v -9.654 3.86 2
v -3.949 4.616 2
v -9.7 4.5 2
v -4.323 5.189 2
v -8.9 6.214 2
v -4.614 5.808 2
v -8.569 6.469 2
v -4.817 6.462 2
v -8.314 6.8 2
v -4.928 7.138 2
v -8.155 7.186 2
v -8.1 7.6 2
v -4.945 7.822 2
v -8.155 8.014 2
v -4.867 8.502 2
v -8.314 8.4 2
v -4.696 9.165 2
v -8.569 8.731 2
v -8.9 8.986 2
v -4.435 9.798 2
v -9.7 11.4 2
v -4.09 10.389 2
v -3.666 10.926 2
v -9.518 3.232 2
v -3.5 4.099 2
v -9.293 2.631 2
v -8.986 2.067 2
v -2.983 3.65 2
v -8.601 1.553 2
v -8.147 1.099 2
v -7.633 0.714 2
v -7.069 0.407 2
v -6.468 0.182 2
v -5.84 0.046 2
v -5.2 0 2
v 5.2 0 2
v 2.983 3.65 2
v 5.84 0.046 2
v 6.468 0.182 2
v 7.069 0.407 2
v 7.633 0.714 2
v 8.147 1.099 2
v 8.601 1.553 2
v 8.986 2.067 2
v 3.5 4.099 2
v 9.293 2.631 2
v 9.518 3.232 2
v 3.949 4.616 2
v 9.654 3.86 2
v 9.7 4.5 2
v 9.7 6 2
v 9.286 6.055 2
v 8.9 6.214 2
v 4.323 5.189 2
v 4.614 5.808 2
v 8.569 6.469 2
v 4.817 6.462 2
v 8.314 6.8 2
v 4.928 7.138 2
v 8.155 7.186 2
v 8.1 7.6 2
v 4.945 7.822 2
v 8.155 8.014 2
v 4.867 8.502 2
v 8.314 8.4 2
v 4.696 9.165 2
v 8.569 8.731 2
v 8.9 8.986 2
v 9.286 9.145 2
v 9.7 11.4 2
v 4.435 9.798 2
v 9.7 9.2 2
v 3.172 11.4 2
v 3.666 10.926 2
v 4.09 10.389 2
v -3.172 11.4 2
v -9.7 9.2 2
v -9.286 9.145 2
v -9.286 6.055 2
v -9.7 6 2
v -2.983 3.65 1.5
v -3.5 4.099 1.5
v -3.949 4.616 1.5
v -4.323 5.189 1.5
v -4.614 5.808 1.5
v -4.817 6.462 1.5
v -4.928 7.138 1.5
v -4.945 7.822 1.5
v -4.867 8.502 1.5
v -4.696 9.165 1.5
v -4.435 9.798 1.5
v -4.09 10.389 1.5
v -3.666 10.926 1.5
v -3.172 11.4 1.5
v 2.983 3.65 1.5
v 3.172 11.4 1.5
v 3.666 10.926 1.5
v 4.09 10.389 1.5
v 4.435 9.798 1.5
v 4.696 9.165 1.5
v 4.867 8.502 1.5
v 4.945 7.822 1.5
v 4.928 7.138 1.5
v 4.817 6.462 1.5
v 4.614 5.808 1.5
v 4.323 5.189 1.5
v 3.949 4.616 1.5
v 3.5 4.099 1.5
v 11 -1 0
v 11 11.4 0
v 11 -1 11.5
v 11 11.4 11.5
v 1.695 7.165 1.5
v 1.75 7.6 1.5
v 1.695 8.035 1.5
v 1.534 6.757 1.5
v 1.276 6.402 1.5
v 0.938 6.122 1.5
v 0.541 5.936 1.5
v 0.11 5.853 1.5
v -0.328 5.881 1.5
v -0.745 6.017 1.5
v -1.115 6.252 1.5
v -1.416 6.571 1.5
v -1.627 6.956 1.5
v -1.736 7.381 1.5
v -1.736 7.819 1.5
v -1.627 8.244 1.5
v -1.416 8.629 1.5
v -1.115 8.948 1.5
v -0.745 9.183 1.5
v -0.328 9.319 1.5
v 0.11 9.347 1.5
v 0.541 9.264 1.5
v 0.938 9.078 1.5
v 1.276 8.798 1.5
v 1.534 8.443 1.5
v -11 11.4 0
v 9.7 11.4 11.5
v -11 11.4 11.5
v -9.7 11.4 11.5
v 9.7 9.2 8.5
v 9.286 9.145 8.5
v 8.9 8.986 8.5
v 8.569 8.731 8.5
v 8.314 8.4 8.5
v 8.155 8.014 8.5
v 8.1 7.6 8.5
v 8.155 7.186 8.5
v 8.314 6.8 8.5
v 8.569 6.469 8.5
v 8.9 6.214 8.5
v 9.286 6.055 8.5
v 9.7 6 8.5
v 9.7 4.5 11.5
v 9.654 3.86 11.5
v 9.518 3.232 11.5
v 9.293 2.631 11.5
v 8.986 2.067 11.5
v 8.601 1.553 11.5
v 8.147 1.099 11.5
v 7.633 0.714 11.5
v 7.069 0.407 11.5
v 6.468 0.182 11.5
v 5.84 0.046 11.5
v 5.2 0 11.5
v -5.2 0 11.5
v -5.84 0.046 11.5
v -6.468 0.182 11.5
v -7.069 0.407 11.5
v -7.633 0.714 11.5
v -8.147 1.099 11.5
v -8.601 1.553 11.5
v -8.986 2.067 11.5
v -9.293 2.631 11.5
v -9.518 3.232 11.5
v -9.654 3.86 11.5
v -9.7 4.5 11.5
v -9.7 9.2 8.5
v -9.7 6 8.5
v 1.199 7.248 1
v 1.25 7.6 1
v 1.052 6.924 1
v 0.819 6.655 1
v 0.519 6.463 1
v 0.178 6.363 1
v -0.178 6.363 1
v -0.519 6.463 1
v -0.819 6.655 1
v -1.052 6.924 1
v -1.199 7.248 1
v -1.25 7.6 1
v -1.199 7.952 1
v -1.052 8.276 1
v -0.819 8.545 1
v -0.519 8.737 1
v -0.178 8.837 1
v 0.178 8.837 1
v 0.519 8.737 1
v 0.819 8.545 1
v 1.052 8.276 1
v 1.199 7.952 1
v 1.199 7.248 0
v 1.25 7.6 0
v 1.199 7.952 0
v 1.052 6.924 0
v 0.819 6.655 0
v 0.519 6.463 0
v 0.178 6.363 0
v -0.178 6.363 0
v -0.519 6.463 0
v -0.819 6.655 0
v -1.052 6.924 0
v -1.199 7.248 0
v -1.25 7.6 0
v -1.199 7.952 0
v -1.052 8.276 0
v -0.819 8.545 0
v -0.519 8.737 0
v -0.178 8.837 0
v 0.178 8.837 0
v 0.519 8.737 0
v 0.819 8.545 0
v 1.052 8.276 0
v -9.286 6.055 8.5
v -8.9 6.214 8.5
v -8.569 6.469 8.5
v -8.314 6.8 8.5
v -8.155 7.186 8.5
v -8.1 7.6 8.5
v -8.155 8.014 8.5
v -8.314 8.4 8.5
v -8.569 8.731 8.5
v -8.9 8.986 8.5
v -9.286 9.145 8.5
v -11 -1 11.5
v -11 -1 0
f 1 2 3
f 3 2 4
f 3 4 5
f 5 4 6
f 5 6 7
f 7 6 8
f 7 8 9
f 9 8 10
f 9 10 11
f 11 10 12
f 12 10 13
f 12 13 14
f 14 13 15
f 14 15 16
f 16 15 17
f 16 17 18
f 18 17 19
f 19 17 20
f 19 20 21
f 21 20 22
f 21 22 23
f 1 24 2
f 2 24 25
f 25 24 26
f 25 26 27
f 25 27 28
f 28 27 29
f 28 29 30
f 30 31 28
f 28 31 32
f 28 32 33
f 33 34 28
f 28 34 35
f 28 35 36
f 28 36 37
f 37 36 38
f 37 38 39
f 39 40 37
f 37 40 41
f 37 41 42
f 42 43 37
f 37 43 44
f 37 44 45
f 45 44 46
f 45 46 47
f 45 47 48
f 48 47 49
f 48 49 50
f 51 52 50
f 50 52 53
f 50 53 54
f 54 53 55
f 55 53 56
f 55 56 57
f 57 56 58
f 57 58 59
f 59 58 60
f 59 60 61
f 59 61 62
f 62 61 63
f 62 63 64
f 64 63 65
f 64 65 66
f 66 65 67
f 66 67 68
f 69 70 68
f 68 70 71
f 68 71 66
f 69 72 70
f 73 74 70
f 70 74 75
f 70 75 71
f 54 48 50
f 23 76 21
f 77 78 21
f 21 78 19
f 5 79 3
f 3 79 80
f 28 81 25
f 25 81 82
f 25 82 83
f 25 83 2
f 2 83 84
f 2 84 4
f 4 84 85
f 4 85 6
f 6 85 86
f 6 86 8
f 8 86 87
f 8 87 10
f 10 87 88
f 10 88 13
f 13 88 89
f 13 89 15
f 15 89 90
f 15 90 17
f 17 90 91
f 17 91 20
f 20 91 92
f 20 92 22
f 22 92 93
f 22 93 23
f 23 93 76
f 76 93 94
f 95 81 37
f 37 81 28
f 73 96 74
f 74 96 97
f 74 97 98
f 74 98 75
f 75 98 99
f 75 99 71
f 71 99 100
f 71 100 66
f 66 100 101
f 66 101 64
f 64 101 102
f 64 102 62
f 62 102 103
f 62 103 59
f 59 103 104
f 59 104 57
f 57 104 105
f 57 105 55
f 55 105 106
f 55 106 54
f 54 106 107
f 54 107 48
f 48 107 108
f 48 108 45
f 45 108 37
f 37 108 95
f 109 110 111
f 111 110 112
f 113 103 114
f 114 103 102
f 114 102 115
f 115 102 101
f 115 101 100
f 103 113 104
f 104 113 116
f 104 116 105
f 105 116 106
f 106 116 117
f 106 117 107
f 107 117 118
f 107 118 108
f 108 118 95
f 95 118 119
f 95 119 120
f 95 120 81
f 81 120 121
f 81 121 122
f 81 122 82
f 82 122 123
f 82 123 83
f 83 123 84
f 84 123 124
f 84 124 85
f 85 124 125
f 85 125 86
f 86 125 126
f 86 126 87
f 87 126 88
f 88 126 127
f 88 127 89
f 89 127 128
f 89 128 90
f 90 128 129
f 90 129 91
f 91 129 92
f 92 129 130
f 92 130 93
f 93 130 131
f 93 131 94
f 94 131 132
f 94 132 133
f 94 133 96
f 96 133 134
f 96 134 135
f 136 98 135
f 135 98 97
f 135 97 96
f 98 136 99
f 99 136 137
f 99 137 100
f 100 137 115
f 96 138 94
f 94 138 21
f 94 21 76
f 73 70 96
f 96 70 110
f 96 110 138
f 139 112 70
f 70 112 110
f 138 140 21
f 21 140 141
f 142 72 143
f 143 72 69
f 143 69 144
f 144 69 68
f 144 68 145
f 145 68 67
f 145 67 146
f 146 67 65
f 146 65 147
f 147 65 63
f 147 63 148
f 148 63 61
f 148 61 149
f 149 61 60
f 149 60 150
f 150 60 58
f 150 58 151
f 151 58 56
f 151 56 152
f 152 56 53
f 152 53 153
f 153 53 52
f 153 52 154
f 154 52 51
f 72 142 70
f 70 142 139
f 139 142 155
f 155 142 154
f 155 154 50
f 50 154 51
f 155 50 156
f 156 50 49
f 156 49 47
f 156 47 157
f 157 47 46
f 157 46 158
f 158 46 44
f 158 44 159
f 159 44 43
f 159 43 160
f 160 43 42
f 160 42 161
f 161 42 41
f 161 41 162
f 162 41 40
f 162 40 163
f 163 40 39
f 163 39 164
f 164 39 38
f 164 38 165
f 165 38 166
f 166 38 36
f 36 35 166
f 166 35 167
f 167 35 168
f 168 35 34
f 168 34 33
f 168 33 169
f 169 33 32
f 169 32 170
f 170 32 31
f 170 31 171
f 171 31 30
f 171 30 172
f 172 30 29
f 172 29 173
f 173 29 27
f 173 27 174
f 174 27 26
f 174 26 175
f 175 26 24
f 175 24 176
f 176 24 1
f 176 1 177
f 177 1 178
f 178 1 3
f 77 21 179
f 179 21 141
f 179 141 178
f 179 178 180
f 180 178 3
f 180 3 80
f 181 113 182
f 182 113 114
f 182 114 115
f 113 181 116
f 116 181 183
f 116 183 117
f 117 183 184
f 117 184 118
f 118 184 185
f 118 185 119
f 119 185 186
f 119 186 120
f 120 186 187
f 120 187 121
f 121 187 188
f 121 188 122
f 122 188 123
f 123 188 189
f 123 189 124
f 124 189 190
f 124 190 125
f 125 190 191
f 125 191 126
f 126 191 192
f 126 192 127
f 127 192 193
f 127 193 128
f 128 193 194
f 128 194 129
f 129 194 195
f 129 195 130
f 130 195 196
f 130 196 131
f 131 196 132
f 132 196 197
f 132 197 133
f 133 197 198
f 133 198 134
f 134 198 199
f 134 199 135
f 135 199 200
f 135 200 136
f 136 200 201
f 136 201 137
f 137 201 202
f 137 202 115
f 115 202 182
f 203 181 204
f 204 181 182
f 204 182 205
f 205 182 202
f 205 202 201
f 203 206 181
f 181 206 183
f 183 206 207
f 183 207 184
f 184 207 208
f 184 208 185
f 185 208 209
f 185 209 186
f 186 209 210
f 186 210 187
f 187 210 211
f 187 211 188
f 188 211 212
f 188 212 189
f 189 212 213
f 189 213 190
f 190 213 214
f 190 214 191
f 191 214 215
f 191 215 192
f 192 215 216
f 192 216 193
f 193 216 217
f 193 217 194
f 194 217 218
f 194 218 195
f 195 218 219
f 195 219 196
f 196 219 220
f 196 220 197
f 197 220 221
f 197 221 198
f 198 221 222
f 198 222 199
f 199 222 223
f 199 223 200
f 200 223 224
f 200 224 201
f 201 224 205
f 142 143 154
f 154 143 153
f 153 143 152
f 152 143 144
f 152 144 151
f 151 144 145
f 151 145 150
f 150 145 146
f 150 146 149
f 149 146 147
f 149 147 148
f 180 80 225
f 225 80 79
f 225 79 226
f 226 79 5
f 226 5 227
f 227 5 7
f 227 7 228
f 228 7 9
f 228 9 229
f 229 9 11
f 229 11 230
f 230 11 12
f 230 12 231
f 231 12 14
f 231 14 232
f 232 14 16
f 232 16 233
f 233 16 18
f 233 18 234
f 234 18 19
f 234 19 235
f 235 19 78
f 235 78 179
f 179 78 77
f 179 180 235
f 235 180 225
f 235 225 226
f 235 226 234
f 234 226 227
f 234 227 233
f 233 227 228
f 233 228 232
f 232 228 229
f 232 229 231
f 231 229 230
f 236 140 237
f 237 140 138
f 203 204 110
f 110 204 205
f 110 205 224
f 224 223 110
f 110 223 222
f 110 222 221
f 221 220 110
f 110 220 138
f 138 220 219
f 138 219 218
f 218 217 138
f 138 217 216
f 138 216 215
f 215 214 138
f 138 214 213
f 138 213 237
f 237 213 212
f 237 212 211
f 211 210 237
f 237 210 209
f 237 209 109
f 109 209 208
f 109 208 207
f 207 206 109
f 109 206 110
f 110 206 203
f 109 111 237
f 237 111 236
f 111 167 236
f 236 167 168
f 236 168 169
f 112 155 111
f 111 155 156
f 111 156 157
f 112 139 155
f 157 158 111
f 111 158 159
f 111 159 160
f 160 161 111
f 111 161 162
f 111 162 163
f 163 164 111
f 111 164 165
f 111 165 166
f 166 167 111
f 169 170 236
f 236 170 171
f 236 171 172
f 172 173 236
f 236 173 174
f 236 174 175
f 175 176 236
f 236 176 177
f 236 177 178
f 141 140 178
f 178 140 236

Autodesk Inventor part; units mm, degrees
ref_plane "YZ Plane" through (0, 0, 0) normal (1, 0, 0) x (0, 1, 0)
ref_plane "XZ Plane" through (0, 0, 0) normal (0, 1, 0) x (-1, 0, 0)
ref_plane "XY Plane" through (0, 0, 0) normal (0, 0, 1) x (1, 0, 0)
sketch "Sketch1" plane through (0, 0, 0) normal (0, 0, 1) x (1, 0, 0)
  line L0 (9.7, 0) -> (-9.7, 0)
  line L1 (-9.7, 0) -> (-9.7, 11.4)
  line L2 (-9.7, 11.4) -> (9.7, 11.4)
  line L3 (9.7, 11.4) -> (9.7, 0)
  line L4 (-9.7, 6) -> (-9.7, 0)
  line L5 (-9.7, 0) -> (9.7, 0)
  line L6 (9.7, 0) -> (9.7, 6)
  arc A0 (-9.7, 6) -> (-9.7, 9.2) centre (-9.7, 7.6) ccw
  arc A1 (9.7, 9.2) -> (9.7, 6) centre (9.7, 7.6) ccw
  line L7 (6.5, 0) -> (-6.5, 0)
  line L8 (-6.5, 0) -> (-6.5, 3)
  line L9 (-6.5, 3) -> (6.5, 3)
  line L10 (6.5, 3) -> (6.5, 0)
  line L11 (2.9833, 3.65) -> (-2.9833, 3.65)
  line L12 (-3.1721, 11.4) -> (3.1721, 11.4)
  arc A2 (-3.1721, 11.4) -> (-2.9833, 3.65) centre (0, 7.6) ccw
  arc A3 (2.9833, 3.65) -> (3.1721, 11.4) centre (0, 7.6) ccw
  circle A4 centre (0, 7.6) radius 1.25
  line L13 (11, -1) -> (-11, -1)
  line L14 (-11, -1) -> (-11, 11.4)
  line L15 (-11, 11.4) -> (11, 11.4)
  line L16 (11, 11.4) -> (11, -1)
  point P0 (0, 0)
  dimension "d0" = 19.4
  dimension "d1" = 11.4
  dimension "d3" = 13
  dimension "d5" = 2.5
  dimension "d6" = 22
  dimension "d7" = 12.4
extrude "Extrusion1" add sketch "Sketch1" along normal blind 10 contours L3 L15 L16 L13 L14 L1 L0
extrude "Extrusion3" add sketch "Sketch1" along normal blind 8.5 contours A1 L3 | L1 A0
extrude "Extrusion4" add sketch "Sketch1" along normal blind 1.5 contours L0 L10 L9 L8 L1 A0 L2 A2 L11 A3 L3 A1 | L0 L8 L9 L10 | A3 L11 A2 L2
chamfer "Chamfer1" distance 0.5 angle 45 1 edges at (-1.25, 7.6, 1.5)
fillet "Fillet1" radius 4.5 2 edges at (-9.7, 0, 5.75) (9.7, 0, 5.75)
extrude "Extrusion6" add sketch "Sketch1" along normal blind 2 contours L0 L10 L9 L8 L1 A0 L2 A2 L11 A3 L3 A1 | L0 L8 L9 L10
move faces "Move1" translate (0, 0, 1.5) faces at (-1.7333, -0.6667, 10)
sketch "Sketch2" plane through (-11, -1, 0) normal (0, -1, 0) x (1, 0, 0)
  line L0 (22, 0) -> (22, 11.5) projected
  line L1 (0, 0) -> (22, 0)
  line L2 (22, 0) -> (22, 1)
  line L3 (22, 1) -> (0, 1)
  line L4 (0, 1) -> (0, 0)
  line L5 (5, 0) -> (4.6249, 0)
  line L6 (4.6249, 1) -> (5, 1)
  line L7 (0, 0) -> (22, 0) projected
  line L8 (17, 0) -> (17, 1)
  line L9 (5, 0) -> (5, 1)
  line L10 (1, 0) -> (1, 1)
  line L11 (21, 0) -> (21, 1)
  point P0 (11, 0)
  point P1 (0, 0.5)
  point P2 (4.9955, 0.5057)
  point P3 (5, 0.5)
  point P4 (21, 0.5)
  point P5 (1, 0)
  dimension "d28" = 1
  dimension "d30" = 5
  dimension "d31" = 5
  dimension "d32" = 1
  dimension "d33" = 1
extrude "Extrusion7" add sketch "Sketch2" along normal blind 1.5 contours L1 L11 L3 L0 | L1 L9 L3 L8 | L1 L4 L3 L10
move faces "Move2" translate (0, 1.5, 0) faces at (-10.6667, -2.5, 0.6667) (2, -2.5, 0.3333) (10.6667, -2.5, 0.6667)
properties part number "MotorHolder"
